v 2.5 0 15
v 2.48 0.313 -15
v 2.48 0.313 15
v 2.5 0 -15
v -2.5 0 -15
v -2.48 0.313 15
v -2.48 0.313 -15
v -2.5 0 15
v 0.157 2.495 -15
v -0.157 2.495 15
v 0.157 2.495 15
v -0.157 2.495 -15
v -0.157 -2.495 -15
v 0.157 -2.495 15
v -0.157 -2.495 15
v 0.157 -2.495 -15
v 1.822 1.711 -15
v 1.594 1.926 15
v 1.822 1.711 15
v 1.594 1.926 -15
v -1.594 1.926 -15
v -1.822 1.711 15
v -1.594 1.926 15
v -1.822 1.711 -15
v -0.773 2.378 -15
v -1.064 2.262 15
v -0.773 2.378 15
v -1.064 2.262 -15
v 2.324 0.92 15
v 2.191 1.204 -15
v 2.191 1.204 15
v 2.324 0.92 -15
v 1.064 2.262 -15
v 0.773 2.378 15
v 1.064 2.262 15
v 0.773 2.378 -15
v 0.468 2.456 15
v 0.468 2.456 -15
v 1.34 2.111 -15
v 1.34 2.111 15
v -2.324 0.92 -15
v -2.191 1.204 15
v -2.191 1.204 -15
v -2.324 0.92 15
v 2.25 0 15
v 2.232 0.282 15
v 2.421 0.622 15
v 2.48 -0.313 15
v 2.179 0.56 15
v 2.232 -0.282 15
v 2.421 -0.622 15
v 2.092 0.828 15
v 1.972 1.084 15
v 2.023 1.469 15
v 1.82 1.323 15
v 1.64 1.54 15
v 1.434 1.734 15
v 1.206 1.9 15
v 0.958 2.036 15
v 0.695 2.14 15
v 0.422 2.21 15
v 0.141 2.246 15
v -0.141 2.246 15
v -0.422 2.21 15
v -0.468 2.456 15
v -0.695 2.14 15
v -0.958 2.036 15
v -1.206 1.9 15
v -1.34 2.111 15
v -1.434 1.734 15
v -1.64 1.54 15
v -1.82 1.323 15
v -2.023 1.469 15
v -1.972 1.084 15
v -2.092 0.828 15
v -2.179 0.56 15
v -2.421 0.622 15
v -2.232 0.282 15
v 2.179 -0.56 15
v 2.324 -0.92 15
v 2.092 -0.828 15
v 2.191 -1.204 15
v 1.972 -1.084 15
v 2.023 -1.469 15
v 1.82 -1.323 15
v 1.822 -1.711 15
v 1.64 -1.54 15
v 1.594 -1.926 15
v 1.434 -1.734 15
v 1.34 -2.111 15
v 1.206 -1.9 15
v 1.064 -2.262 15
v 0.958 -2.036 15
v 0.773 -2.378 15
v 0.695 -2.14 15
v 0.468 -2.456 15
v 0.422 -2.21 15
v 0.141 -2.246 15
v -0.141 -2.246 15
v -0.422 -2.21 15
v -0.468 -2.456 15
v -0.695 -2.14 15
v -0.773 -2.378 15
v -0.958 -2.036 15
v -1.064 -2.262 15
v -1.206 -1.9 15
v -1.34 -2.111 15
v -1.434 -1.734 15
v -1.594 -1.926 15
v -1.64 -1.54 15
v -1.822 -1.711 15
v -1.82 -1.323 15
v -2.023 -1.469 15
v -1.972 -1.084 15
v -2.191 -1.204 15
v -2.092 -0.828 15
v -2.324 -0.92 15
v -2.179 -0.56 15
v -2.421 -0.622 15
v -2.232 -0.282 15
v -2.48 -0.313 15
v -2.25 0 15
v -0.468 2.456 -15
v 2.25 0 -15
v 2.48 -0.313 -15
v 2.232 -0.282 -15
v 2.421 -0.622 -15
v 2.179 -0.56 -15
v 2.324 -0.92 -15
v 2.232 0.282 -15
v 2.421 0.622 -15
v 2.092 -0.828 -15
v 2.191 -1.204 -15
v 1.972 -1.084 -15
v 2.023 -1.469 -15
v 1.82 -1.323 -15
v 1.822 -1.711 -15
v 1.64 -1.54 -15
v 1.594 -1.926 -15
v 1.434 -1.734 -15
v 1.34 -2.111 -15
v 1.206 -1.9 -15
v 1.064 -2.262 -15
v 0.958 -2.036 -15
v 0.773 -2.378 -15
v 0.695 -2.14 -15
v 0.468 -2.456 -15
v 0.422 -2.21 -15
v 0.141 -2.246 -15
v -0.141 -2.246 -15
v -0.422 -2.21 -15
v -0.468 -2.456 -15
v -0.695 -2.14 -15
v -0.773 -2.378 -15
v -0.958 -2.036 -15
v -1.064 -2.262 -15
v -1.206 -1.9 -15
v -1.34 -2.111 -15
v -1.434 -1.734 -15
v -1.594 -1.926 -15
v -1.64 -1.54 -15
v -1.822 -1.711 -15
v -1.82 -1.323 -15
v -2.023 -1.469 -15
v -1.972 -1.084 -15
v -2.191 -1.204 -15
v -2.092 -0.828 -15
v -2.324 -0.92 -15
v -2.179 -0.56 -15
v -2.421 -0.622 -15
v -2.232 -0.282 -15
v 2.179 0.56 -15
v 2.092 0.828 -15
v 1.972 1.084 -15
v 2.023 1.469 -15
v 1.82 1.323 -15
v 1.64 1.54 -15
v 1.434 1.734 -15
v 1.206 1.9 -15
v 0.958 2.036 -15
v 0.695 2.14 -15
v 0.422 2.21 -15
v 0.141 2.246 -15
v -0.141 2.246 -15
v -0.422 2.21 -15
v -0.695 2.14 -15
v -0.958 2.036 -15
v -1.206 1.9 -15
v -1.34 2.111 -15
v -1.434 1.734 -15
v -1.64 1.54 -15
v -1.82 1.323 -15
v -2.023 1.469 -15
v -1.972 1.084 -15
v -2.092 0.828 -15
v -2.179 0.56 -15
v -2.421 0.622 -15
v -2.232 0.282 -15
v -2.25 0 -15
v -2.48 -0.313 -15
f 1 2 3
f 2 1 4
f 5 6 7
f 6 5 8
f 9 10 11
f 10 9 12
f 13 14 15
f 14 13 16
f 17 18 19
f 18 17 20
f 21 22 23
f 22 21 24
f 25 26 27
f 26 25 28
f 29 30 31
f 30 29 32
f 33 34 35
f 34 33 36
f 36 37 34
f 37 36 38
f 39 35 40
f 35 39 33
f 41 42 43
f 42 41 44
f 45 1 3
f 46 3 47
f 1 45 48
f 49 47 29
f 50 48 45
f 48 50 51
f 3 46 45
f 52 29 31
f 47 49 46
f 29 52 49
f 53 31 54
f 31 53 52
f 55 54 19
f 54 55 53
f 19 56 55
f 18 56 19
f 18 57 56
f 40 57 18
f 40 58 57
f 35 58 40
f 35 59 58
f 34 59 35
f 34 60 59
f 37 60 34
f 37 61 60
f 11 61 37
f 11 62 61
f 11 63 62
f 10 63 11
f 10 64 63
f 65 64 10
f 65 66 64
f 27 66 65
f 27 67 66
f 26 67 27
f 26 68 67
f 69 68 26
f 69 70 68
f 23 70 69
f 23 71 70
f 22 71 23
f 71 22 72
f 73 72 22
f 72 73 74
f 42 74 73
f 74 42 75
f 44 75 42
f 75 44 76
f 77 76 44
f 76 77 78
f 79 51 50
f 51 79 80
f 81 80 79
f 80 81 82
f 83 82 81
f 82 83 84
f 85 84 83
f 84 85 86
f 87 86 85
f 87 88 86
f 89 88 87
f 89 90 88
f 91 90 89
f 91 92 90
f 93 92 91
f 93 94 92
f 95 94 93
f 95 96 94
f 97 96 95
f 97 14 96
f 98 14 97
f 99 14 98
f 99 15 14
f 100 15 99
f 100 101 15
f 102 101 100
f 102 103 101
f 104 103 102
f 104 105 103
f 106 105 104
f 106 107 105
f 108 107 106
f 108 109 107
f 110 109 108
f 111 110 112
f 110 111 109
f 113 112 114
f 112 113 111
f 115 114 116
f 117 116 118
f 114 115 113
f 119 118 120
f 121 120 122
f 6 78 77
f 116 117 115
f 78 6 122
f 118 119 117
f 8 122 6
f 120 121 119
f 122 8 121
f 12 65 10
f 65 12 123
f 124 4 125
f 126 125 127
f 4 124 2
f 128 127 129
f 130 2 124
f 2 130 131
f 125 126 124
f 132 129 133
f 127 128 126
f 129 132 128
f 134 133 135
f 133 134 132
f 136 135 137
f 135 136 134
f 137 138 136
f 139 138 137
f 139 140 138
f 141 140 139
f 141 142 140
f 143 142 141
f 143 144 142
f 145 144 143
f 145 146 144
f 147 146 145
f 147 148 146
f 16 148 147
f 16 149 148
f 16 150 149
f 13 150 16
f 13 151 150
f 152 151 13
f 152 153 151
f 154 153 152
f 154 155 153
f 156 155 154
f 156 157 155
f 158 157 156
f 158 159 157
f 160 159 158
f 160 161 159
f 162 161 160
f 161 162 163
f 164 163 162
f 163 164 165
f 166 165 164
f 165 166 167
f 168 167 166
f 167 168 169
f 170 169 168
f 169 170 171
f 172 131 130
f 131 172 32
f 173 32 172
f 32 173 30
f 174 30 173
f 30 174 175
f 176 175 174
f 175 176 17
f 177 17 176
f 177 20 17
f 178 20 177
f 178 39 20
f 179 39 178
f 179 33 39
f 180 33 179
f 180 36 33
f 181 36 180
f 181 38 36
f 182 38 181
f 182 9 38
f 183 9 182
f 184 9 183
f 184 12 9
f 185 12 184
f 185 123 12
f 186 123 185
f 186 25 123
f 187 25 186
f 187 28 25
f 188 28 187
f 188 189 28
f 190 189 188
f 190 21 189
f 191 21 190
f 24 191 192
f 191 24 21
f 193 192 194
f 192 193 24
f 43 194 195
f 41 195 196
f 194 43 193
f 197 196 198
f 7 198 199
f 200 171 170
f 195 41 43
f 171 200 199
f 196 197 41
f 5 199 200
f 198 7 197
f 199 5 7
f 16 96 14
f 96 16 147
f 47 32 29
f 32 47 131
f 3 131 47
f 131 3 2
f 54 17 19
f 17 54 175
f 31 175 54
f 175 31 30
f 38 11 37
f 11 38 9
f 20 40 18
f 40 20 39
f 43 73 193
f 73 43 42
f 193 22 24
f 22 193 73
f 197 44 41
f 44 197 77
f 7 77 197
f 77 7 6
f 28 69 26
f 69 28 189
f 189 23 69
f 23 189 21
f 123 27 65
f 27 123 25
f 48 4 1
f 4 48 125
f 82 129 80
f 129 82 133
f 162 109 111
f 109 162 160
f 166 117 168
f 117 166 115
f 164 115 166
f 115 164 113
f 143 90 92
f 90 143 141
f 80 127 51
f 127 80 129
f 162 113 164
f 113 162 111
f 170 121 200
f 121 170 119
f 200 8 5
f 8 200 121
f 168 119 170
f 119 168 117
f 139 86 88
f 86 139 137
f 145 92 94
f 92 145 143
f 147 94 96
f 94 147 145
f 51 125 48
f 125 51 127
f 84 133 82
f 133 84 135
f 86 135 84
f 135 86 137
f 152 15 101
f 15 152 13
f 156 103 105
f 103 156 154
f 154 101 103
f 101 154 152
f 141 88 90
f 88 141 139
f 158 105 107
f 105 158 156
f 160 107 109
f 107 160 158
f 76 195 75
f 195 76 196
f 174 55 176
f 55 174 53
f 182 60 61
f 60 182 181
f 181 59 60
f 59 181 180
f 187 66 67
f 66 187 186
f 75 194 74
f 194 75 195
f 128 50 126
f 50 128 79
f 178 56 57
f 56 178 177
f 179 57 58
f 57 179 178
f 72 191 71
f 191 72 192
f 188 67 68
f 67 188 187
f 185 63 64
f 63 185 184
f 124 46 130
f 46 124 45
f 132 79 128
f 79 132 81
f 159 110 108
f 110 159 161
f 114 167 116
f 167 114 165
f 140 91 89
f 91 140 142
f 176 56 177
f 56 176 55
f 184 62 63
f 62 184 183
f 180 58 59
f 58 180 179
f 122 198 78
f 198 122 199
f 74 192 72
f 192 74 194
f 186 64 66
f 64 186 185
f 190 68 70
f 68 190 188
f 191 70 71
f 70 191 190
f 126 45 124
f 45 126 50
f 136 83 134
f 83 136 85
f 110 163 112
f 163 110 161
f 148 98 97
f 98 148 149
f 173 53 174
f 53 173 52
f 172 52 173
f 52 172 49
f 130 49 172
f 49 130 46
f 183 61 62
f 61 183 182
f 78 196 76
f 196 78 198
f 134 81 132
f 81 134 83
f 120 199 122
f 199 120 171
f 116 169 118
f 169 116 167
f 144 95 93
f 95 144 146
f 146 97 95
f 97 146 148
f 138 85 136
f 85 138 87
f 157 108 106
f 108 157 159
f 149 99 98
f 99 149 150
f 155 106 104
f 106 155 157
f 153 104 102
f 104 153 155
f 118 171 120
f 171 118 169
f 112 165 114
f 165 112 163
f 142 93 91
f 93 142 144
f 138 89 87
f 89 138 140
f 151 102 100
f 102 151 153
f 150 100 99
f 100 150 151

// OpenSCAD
$fn = 50;


difference() {
	union() {
		translate(v = [0, 0, -15.0000000000]) {
			cylinder(h = 30, r = 2.5000000000);
		}
	}
	union() {
		translate(v = [0, 0, -100.0000000000]) {
			cylinder(h = 200, r = 2.2500000000);
		}
	}
}
